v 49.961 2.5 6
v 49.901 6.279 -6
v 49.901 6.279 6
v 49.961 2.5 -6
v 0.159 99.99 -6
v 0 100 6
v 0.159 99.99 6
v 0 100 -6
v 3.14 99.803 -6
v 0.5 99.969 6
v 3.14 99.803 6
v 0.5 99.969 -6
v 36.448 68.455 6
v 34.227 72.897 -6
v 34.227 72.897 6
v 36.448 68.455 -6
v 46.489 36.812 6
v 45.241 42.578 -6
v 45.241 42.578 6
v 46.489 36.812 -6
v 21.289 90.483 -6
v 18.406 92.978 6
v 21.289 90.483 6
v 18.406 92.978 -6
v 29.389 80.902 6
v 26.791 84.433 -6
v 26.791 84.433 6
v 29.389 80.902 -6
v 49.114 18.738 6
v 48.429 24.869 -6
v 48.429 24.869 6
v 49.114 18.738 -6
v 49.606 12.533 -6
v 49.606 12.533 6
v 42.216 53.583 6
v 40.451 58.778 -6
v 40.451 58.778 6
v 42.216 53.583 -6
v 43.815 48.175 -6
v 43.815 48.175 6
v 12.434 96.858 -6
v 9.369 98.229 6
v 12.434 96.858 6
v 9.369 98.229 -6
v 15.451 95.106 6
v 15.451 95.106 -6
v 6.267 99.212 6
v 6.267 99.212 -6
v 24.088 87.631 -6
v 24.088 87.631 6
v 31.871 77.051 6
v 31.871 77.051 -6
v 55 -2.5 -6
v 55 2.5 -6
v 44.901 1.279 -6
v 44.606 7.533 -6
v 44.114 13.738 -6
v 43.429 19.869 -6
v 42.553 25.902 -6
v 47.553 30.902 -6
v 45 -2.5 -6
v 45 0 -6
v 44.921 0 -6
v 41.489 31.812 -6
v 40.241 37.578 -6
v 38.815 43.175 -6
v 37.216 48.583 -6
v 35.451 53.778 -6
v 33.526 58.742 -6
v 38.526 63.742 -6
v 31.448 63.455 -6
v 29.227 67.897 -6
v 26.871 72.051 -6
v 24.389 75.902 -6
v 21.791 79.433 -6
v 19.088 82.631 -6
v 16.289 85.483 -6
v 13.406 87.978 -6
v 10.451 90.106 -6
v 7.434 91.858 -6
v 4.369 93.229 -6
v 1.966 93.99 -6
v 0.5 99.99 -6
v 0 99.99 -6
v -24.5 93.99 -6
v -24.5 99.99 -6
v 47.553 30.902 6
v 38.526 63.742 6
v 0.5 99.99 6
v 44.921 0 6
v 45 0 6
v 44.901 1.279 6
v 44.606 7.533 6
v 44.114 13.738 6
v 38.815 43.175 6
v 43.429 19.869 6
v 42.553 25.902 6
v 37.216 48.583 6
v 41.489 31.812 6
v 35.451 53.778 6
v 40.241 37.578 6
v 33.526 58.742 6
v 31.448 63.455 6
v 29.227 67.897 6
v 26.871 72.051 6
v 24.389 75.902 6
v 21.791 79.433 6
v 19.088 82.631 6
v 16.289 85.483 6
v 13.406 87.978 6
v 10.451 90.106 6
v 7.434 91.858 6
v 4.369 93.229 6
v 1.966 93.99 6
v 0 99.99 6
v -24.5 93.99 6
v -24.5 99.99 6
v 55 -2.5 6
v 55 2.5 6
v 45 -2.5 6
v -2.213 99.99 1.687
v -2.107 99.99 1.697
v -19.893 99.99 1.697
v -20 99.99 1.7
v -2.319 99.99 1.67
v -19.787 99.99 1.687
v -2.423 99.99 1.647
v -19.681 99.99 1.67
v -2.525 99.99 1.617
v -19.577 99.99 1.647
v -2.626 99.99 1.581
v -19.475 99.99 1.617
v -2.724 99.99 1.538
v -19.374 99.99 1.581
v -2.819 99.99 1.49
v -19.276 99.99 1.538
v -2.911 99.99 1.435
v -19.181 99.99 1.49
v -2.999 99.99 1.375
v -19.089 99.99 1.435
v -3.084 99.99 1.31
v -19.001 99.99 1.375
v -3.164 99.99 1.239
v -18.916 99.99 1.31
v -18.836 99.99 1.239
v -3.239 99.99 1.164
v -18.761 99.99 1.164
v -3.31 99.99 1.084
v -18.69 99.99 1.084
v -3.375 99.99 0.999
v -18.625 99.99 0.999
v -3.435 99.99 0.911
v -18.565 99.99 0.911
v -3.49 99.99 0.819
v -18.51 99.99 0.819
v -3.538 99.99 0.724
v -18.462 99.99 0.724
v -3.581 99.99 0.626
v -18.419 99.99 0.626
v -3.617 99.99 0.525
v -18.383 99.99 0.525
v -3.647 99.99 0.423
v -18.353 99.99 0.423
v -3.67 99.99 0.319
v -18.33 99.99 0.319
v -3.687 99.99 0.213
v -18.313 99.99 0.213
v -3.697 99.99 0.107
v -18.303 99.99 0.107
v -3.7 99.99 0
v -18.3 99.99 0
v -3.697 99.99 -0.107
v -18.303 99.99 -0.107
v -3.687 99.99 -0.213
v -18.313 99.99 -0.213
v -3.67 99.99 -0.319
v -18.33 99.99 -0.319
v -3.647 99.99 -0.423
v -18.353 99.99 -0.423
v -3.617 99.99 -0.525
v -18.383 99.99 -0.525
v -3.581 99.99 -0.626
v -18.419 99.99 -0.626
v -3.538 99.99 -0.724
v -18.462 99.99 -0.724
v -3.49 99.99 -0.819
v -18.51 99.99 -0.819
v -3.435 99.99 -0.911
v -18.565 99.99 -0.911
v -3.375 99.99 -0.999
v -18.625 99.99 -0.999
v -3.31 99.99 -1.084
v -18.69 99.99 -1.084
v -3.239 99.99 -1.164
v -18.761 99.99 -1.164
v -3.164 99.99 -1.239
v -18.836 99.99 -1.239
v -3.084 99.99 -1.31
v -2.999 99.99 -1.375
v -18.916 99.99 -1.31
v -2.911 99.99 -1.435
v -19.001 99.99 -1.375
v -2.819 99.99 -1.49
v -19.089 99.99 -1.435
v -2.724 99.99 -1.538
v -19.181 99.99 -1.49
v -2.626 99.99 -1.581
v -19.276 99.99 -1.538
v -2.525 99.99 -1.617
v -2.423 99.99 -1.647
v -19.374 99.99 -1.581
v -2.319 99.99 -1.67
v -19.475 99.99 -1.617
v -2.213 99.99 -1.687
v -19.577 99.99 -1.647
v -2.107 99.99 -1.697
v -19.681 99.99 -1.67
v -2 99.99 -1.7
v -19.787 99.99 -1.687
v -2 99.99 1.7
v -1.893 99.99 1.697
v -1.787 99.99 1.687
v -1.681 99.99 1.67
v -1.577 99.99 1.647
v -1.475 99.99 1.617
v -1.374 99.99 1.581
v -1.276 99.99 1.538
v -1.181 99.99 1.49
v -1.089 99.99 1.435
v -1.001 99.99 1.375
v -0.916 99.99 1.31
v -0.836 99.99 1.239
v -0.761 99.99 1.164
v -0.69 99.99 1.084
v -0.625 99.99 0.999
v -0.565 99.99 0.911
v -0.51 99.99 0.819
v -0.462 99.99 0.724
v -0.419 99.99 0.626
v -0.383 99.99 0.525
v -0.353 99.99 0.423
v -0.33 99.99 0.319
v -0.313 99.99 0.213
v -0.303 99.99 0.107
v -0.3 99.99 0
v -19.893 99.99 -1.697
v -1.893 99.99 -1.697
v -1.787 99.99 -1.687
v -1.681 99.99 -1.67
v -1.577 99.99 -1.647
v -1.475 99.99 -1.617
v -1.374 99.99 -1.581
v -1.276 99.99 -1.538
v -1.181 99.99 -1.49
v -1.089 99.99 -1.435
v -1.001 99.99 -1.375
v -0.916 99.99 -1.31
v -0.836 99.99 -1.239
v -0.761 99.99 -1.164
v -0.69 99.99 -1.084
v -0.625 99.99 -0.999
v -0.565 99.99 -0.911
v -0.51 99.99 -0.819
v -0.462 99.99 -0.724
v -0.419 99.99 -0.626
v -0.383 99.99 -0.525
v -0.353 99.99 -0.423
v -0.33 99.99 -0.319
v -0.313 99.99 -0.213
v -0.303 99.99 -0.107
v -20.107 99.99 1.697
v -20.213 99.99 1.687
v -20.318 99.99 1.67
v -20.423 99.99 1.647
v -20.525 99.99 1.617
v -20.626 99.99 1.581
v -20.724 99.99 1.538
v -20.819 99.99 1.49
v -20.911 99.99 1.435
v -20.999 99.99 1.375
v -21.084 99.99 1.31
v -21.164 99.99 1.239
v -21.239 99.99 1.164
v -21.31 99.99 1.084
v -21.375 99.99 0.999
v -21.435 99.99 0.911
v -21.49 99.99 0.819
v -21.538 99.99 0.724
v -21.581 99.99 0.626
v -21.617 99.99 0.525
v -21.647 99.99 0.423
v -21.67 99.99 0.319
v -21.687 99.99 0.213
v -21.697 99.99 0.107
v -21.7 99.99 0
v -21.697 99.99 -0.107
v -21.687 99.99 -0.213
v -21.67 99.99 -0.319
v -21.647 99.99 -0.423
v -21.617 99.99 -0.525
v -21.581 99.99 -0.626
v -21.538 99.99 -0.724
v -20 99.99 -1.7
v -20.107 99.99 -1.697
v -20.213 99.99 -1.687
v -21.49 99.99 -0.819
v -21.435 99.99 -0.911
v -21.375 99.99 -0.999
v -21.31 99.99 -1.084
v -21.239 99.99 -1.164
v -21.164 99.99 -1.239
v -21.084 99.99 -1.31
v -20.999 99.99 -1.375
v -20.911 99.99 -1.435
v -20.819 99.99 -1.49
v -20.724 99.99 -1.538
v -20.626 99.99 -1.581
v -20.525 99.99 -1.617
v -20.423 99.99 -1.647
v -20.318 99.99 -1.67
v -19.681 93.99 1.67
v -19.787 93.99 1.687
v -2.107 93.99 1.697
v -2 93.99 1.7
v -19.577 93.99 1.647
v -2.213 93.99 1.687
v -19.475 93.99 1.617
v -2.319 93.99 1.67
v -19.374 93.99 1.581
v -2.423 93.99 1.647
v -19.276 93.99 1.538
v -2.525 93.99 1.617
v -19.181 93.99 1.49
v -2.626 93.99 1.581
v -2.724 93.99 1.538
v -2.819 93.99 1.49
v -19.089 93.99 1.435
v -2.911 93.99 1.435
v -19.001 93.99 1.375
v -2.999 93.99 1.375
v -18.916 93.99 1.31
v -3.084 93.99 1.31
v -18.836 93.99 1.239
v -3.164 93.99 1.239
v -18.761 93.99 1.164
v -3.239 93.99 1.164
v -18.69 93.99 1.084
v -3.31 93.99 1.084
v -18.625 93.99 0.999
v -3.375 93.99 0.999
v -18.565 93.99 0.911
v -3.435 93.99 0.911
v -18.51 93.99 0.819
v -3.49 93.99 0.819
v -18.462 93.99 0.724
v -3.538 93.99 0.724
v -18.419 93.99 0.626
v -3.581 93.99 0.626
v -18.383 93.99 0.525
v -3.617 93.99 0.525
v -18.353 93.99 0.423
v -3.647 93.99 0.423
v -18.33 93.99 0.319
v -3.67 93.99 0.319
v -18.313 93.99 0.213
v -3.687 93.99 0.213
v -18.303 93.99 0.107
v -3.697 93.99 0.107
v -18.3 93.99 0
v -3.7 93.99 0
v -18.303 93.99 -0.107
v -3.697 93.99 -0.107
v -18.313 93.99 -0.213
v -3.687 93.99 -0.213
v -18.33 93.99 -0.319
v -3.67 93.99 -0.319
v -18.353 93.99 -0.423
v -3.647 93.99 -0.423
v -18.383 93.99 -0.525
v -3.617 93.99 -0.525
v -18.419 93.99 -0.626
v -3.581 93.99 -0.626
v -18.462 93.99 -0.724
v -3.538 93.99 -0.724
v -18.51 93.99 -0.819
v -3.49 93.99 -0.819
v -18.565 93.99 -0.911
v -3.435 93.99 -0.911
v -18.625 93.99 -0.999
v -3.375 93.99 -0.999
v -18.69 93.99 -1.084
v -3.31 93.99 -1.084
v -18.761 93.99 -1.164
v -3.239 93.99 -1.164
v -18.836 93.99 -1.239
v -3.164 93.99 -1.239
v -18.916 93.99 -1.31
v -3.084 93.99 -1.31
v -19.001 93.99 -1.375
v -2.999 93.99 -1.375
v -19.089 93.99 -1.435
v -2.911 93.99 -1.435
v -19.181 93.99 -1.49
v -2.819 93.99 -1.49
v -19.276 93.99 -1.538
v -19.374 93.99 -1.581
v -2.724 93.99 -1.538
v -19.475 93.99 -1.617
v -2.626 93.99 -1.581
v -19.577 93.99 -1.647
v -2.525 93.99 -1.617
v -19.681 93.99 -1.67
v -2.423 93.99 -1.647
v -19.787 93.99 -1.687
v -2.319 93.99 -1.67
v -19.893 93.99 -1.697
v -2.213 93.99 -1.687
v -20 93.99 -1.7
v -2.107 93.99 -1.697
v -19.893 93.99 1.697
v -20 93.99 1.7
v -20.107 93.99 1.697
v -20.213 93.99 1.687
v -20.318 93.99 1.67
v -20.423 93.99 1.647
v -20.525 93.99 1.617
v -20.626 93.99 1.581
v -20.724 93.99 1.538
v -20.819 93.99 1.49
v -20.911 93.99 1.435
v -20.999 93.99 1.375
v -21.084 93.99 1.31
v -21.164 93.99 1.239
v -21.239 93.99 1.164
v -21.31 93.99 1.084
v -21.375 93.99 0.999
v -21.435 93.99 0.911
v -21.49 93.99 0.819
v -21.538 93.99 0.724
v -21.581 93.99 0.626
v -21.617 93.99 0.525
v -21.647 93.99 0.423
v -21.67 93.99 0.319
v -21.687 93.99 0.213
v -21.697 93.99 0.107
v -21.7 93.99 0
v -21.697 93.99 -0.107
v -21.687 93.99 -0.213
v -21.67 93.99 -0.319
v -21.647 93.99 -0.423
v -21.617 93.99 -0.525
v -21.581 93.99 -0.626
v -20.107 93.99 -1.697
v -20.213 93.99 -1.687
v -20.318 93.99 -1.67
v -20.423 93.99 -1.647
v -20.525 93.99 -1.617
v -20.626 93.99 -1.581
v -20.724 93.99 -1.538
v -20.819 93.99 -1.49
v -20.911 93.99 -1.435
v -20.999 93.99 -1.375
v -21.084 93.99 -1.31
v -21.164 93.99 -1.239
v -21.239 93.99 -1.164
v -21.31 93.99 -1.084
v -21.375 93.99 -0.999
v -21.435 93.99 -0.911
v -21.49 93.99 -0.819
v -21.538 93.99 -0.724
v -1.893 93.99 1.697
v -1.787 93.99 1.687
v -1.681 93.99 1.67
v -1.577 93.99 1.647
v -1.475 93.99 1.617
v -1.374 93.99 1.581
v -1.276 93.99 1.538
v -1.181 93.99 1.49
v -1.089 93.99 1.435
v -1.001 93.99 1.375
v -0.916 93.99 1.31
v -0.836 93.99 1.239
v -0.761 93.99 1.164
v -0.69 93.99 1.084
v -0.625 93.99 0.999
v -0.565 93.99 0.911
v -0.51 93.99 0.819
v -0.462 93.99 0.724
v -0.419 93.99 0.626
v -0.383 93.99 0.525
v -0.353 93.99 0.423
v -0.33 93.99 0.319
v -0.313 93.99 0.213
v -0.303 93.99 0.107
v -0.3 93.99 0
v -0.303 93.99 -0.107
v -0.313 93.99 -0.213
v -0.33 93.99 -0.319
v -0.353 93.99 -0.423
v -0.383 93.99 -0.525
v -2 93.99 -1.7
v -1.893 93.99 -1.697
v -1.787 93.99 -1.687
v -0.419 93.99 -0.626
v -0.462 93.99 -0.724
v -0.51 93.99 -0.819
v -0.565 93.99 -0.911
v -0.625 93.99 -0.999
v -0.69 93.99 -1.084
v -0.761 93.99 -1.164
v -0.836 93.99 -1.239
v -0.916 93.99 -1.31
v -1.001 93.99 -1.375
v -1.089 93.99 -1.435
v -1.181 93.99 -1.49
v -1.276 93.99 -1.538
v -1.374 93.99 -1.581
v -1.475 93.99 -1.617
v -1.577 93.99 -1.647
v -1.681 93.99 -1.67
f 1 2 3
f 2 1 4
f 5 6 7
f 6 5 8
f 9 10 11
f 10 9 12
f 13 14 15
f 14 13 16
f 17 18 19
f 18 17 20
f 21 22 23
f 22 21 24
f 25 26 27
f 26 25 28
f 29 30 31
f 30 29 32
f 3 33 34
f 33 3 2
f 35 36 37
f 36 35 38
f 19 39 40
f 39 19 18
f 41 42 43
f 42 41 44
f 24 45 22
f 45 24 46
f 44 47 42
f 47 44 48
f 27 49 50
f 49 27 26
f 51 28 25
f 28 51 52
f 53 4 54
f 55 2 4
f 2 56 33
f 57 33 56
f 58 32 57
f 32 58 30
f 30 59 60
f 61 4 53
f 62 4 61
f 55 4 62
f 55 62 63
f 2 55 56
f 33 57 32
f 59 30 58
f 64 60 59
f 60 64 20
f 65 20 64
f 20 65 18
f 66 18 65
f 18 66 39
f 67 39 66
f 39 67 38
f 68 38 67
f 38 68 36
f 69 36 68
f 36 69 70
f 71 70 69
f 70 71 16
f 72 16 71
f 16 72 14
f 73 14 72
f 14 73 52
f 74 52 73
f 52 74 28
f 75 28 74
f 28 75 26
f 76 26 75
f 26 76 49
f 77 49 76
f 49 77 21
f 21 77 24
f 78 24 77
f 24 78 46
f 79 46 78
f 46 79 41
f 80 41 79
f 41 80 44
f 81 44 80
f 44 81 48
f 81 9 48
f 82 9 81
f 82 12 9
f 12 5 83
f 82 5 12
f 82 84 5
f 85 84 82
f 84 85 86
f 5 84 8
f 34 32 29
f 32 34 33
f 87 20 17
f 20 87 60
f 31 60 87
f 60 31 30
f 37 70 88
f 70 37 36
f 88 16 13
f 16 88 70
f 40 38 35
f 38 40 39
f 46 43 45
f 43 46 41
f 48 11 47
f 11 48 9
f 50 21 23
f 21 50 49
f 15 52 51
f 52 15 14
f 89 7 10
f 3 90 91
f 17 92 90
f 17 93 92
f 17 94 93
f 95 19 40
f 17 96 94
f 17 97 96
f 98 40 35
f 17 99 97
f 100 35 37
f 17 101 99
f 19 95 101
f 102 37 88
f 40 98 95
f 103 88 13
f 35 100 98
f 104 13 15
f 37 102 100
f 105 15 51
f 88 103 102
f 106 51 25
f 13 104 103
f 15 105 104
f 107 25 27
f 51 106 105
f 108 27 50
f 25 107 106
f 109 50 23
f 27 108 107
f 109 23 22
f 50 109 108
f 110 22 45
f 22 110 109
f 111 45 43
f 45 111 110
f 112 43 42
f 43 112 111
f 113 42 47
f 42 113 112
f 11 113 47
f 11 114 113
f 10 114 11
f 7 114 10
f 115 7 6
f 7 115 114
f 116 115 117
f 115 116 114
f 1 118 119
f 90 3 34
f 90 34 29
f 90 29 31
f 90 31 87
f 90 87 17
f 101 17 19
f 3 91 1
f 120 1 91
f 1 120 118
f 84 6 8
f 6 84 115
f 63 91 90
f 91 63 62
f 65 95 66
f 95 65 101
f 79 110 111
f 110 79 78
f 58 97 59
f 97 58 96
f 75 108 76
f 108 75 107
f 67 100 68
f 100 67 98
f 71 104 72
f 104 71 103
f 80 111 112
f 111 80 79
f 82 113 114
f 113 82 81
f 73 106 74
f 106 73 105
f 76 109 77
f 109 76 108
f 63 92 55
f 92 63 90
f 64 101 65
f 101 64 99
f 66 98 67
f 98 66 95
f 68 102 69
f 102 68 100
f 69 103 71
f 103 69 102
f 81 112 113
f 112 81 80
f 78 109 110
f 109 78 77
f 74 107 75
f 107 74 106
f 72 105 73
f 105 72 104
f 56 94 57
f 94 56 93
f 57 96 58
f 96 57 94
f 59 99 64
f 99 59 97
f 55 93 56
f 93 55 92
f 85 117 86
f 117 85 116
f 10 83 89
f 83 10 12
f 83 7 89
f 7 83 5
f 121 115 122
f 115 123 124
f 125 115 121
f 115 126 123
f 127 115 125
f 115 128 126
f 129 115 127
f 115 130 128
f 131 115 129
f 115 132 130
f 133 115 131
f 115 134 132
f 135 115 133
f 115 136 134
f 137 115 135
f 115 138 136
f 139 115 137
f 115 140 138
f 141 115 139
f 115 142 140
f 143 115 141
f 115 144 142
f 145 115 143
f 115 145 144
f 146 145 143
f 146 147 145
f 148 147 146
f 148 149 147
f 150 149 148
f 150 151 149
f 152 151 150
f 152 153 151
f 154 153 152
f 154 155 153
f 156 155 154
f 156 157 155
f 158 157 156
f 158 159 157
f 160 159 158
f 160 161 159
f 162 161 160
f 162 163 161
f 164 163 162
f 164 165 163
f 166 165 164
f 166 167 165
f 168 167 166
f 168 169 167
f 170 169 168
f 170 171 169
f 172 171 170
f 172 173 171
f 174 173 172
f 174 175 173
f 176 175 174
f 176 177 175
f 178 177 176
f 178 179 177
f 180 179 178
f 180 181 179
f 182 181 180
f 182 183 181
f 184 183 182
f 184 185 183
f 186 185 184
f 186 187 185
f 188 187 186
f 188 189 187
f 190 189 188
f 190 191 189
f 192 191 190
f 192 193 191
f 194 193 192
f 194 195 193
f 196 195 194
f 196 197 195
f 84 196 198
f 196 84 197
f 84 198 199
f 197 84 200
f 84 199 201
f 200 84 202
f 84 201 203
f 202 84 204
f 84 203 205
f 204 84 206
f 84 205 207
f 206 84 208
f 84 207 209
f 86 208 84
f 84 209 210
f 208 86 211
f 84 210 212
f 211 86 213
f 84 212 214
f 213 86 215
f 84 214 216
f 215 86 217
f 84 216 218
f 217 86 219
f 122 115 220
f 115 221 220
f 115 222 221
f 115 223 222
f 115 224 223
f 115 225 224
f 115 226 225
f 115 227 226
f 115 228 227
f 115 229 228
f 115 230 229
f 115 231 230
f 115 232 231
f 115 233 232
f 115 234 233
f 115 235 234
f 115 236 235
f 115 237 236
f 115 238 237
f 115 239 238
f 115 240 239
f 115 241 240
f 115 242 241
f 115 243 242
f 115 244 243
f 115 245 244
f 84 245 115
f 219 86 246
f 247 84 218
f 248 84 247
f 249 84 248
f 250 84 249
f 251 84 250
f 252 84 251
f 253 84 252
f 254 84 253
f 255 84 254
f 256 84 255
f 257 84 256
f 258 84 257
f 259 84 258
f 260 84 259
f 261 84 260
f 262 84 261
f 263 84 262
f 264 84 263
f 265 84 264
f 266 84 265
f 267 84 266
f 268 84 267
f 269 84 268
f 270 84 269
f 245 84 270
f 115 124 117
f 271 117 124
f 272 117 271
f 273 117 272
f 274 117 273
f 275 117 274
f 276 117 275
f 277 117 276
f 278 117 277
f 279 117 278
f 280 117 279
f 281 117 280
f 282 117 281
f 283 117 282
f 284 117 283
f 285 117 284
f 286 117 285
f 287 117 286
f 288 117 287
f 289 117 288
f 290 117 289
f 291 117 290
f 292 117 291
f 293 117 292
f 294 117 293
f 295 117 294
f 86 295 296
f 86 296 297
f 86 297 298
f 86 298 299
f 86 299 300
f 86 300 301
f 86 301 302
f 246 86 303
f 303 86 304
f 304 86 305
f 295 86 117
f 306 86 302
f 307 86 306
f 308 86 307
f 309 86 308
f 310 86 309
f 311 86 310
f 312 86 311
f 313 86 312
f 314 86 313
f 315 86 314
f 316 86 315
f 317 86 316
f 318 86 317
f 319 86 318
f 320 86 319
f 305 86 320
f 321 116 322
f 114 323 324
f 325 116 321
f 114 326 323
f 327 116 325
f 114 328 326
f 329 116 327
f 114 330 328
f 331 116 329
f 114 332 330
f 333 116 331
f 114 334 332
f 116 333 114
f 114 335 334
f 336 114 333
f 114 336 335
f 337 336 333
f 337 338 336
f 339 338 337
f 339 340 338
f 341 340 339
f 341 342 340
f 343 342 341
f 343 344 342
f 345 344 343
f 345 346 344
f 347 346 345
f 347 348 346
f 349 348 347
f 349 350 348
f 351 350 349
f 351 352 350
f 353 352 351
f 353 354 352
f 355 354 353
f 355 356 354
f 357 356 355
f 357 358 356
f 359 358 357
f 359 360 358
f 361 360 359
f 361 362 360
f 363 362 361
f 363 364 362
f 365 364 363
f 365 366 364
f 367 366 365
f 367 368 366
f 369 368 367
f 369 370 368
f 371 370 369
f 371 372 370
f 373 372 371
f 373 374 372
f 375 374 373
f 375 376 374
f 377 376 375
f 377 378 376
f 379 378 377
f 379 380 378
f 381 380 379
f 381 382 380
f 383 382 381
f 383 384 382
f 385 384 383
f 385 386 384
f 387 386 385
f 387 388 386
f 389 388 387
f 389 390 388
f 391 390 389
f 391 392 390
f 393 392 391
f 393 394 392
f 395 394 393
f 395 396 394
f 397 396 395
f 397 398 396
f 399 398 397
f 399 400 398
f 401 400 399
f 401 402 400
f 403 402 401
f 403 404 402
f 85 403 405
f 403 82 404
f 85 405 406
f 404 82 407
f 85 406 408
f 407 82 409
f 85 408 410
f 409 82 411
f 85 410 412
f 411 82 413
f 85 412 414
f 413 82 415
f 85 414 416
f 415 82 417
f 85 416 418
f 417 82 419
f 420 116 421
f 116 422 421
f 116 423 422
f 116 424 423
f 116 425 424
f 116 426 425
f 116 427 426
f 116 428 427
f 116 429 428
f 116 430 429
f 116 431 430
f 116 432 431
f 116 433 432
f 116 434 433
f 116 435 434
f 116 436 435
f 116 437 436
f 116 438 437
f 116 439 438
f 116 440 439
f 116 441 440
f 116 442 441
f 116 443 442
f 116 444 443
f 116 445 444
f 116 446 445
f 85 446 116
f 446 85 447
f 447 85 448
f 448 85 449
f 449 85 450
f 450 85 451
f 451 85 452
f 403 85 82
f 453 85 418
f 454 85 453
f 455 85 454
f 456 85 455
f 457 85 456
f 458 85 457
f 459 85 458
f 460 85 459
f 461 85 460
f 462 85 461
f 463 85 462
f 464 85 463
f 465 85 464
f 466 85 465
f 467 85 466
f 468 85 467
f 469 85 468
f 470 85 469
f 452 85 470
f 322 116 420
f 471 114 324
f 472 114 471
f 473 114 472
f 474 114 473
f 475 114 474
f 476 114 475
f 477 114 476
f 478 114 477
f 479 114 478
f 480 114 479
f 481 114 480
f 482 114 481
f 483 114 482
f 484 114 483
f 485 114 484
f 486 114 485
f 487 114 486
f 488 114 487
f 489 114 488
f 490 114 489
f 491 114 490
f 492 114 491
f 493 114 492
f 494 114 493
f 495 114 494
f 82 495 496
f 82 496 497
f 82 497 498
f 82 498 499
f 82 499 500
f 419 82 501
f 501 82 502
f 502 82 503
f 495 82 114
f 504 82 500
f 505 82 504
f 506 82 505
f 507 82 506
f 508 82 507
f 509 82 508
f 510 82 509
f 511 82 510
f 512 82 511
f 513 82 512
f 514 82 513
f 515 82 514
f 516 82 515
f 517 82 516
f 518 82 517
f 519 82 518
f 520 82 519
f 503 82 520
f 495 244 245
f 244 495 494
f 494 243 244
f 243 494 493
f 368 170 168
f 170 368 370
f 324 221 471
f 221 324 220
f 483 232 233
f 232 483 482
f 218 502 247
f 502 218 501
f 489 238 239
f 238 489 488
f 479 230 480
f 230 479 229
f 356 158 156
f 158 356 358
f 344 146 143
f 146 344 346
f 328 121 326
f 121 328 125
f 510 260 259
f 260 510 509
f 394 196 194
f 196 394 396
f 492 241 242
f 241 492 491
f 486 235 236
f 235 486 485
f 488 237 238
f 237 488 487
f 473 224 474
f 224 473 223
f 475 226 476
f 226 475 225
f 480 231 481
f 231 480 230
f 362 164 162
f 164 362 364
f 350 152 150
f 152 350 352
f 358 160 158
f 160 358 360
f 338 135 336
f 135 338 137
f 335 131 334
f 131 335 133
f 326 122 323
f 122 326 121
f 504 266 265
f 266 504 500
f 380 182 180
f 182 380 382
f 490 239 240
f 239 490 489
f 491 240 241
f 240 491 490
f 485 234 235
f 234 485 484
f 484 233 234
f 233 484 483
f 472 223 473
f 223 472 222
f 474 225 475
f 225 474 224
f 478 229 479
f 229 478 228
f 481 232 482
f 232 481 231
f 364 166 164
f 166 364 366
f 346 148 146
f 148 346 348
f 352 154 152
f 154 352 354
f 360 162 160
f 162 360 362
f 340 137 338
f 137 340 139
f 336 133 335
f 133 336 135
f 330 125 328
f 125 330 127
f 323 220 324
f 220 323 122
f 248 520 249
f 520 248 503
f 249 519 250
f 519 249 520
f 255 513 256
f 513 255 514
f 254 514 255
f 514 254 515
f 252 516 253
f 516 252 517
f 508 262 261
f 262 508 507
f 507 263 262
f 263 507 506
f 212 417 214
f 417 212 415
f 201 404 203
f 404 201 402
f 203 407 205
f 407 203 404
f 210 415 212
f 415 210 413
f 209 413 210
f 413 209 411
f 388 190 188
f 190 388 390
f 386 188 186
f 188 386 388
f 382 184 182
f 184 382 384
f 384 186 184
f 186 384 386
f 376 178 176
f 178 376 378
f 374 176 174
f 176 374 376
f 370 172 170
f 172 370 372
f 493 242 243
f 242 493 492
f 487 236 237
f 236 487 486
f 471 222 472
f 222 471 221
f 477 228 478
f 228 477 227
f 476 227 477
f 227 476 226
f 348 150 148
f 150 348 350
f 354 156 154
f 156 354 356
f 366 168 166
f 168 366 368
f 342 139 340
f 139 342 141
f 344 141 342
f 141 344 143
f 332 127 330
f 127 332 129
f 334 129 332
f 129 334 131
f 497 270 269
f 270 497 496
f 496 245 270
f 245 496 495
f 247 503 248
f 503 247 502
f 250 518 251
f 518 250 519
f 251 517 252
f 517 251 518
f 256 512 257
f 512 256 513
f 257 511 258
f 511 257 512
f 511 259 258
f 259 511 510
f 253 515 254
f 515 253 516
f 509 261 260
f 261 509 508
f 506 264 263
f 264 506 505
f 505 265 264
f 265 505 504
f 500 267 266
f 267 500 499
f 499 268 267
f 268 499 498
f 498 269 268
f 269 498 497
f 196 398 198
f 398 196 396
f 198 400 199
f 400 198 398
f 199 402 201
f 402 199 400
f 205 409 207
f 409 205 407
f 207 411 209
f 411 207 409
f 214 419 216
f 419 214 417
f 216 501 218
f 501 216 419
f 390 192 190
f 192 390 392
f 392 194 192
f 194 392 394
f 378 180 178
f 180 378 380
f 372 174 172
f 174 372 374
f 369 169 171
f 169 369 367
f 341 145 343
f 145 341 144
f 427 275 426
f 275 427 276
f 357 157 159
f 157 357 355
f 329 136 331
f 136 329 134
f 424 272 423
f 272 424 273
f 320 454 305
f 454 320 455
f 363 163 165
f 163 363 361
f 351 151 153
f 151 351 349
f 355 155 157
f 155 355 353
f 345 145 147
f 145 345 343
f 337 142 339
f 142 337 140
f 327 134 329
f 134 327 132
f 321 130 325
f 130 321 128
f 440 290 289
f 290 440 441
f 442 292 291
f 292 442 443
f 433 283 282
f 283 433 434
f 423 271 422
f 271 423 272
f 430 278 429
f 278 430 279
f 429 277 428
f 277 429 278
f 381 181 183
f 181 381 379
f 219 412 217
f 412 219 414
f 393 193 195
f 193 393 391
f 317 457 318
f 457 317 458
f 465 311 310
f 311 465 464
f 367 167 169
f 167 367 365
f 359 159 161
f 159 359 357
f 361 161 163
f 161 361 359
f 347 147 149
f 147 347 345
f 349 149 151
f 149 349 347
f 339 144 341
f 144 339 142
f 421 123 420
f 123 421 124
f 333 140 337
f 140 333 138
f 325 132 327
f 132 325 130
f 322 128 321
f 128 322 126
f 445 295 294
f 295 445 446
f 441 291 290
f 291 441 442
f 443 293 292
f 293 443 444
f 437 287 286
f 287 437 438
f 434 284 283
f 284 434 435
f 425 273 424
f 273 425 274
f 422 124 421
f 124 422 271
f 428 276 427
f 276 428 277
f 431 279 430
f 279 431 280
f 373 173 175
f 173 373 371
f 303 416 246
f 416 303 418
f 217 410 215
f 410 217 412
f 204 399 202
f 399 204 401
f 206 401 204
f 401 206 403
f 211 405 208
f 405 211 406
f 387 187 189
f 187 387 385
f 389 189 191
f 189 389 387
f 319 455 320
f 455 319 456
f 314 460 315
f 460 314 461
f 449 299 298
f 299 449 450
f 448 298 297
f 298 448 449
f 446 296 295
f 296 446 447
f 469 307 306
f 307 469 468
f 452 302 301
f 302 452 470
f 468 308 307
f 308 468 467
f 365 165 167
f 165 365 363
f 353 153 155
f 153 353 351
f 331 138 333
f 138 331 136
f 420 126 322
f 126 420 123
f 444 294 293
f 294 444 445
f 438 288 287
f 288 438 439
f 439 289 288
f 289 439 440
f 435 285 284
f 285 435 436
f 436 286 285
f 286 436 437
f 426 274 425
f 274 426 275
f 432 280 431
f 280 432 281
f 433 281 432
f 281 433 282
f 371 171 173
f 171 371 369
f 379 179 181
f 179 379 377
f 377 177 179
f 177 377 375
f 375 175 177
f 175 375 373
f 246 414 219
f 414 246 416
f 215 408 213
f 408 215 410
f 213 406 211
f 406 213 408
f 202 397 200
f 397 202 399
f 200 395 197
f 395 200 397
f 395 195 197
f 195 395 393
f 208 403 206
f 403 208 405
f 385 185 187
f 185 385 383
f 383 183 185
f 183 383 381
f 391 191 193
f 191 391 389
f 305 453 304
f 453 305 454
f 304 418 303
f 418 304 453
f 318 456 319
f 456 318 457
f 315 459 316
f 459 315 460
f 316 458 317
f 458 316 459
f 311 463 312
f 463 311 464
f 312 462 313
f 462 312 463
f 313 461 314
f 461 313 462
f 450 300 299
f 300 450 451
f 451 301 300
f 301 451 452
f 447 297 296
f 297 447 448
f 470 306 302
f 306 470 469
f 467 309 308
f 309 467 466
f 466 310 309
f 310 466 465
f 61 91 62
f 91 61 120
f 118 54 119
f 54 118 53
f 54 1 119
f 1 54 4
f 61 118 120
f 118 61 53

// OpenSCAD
module landing_gear() {

    difference() {
        intersection() {
            scale([1,2,1])
                cylinder(d=100,h=12,$fn=100,center=true);
            translate([0,0,-25])
                cube(100);
        }

        translate([-5,-5,0])
            scale([1,2,1])
                cylinder(d=100,h=12.1,$fn=100,center=true);

    }

    translate([50,0,0])
        cube([10,5,12],center=true);

    translate([-12,96.99,0]) {
        difference() {
            union() {
                cube([25,6,12],center=true);
                translate([10,-1,0])
                    cube([10,4,12],center=true);
            }
            translate([10,0,0]){
                rotate([90,0,0])
                    cylinder(d=3.4,h=30,center=true,$fn=100);
                translate([-18,0,0])
                    rotate([90,0,0])
                        cylinder(d=3.4,h=30,center=true,$fn=100);
            }
        }
    }
}

landing_gear();
